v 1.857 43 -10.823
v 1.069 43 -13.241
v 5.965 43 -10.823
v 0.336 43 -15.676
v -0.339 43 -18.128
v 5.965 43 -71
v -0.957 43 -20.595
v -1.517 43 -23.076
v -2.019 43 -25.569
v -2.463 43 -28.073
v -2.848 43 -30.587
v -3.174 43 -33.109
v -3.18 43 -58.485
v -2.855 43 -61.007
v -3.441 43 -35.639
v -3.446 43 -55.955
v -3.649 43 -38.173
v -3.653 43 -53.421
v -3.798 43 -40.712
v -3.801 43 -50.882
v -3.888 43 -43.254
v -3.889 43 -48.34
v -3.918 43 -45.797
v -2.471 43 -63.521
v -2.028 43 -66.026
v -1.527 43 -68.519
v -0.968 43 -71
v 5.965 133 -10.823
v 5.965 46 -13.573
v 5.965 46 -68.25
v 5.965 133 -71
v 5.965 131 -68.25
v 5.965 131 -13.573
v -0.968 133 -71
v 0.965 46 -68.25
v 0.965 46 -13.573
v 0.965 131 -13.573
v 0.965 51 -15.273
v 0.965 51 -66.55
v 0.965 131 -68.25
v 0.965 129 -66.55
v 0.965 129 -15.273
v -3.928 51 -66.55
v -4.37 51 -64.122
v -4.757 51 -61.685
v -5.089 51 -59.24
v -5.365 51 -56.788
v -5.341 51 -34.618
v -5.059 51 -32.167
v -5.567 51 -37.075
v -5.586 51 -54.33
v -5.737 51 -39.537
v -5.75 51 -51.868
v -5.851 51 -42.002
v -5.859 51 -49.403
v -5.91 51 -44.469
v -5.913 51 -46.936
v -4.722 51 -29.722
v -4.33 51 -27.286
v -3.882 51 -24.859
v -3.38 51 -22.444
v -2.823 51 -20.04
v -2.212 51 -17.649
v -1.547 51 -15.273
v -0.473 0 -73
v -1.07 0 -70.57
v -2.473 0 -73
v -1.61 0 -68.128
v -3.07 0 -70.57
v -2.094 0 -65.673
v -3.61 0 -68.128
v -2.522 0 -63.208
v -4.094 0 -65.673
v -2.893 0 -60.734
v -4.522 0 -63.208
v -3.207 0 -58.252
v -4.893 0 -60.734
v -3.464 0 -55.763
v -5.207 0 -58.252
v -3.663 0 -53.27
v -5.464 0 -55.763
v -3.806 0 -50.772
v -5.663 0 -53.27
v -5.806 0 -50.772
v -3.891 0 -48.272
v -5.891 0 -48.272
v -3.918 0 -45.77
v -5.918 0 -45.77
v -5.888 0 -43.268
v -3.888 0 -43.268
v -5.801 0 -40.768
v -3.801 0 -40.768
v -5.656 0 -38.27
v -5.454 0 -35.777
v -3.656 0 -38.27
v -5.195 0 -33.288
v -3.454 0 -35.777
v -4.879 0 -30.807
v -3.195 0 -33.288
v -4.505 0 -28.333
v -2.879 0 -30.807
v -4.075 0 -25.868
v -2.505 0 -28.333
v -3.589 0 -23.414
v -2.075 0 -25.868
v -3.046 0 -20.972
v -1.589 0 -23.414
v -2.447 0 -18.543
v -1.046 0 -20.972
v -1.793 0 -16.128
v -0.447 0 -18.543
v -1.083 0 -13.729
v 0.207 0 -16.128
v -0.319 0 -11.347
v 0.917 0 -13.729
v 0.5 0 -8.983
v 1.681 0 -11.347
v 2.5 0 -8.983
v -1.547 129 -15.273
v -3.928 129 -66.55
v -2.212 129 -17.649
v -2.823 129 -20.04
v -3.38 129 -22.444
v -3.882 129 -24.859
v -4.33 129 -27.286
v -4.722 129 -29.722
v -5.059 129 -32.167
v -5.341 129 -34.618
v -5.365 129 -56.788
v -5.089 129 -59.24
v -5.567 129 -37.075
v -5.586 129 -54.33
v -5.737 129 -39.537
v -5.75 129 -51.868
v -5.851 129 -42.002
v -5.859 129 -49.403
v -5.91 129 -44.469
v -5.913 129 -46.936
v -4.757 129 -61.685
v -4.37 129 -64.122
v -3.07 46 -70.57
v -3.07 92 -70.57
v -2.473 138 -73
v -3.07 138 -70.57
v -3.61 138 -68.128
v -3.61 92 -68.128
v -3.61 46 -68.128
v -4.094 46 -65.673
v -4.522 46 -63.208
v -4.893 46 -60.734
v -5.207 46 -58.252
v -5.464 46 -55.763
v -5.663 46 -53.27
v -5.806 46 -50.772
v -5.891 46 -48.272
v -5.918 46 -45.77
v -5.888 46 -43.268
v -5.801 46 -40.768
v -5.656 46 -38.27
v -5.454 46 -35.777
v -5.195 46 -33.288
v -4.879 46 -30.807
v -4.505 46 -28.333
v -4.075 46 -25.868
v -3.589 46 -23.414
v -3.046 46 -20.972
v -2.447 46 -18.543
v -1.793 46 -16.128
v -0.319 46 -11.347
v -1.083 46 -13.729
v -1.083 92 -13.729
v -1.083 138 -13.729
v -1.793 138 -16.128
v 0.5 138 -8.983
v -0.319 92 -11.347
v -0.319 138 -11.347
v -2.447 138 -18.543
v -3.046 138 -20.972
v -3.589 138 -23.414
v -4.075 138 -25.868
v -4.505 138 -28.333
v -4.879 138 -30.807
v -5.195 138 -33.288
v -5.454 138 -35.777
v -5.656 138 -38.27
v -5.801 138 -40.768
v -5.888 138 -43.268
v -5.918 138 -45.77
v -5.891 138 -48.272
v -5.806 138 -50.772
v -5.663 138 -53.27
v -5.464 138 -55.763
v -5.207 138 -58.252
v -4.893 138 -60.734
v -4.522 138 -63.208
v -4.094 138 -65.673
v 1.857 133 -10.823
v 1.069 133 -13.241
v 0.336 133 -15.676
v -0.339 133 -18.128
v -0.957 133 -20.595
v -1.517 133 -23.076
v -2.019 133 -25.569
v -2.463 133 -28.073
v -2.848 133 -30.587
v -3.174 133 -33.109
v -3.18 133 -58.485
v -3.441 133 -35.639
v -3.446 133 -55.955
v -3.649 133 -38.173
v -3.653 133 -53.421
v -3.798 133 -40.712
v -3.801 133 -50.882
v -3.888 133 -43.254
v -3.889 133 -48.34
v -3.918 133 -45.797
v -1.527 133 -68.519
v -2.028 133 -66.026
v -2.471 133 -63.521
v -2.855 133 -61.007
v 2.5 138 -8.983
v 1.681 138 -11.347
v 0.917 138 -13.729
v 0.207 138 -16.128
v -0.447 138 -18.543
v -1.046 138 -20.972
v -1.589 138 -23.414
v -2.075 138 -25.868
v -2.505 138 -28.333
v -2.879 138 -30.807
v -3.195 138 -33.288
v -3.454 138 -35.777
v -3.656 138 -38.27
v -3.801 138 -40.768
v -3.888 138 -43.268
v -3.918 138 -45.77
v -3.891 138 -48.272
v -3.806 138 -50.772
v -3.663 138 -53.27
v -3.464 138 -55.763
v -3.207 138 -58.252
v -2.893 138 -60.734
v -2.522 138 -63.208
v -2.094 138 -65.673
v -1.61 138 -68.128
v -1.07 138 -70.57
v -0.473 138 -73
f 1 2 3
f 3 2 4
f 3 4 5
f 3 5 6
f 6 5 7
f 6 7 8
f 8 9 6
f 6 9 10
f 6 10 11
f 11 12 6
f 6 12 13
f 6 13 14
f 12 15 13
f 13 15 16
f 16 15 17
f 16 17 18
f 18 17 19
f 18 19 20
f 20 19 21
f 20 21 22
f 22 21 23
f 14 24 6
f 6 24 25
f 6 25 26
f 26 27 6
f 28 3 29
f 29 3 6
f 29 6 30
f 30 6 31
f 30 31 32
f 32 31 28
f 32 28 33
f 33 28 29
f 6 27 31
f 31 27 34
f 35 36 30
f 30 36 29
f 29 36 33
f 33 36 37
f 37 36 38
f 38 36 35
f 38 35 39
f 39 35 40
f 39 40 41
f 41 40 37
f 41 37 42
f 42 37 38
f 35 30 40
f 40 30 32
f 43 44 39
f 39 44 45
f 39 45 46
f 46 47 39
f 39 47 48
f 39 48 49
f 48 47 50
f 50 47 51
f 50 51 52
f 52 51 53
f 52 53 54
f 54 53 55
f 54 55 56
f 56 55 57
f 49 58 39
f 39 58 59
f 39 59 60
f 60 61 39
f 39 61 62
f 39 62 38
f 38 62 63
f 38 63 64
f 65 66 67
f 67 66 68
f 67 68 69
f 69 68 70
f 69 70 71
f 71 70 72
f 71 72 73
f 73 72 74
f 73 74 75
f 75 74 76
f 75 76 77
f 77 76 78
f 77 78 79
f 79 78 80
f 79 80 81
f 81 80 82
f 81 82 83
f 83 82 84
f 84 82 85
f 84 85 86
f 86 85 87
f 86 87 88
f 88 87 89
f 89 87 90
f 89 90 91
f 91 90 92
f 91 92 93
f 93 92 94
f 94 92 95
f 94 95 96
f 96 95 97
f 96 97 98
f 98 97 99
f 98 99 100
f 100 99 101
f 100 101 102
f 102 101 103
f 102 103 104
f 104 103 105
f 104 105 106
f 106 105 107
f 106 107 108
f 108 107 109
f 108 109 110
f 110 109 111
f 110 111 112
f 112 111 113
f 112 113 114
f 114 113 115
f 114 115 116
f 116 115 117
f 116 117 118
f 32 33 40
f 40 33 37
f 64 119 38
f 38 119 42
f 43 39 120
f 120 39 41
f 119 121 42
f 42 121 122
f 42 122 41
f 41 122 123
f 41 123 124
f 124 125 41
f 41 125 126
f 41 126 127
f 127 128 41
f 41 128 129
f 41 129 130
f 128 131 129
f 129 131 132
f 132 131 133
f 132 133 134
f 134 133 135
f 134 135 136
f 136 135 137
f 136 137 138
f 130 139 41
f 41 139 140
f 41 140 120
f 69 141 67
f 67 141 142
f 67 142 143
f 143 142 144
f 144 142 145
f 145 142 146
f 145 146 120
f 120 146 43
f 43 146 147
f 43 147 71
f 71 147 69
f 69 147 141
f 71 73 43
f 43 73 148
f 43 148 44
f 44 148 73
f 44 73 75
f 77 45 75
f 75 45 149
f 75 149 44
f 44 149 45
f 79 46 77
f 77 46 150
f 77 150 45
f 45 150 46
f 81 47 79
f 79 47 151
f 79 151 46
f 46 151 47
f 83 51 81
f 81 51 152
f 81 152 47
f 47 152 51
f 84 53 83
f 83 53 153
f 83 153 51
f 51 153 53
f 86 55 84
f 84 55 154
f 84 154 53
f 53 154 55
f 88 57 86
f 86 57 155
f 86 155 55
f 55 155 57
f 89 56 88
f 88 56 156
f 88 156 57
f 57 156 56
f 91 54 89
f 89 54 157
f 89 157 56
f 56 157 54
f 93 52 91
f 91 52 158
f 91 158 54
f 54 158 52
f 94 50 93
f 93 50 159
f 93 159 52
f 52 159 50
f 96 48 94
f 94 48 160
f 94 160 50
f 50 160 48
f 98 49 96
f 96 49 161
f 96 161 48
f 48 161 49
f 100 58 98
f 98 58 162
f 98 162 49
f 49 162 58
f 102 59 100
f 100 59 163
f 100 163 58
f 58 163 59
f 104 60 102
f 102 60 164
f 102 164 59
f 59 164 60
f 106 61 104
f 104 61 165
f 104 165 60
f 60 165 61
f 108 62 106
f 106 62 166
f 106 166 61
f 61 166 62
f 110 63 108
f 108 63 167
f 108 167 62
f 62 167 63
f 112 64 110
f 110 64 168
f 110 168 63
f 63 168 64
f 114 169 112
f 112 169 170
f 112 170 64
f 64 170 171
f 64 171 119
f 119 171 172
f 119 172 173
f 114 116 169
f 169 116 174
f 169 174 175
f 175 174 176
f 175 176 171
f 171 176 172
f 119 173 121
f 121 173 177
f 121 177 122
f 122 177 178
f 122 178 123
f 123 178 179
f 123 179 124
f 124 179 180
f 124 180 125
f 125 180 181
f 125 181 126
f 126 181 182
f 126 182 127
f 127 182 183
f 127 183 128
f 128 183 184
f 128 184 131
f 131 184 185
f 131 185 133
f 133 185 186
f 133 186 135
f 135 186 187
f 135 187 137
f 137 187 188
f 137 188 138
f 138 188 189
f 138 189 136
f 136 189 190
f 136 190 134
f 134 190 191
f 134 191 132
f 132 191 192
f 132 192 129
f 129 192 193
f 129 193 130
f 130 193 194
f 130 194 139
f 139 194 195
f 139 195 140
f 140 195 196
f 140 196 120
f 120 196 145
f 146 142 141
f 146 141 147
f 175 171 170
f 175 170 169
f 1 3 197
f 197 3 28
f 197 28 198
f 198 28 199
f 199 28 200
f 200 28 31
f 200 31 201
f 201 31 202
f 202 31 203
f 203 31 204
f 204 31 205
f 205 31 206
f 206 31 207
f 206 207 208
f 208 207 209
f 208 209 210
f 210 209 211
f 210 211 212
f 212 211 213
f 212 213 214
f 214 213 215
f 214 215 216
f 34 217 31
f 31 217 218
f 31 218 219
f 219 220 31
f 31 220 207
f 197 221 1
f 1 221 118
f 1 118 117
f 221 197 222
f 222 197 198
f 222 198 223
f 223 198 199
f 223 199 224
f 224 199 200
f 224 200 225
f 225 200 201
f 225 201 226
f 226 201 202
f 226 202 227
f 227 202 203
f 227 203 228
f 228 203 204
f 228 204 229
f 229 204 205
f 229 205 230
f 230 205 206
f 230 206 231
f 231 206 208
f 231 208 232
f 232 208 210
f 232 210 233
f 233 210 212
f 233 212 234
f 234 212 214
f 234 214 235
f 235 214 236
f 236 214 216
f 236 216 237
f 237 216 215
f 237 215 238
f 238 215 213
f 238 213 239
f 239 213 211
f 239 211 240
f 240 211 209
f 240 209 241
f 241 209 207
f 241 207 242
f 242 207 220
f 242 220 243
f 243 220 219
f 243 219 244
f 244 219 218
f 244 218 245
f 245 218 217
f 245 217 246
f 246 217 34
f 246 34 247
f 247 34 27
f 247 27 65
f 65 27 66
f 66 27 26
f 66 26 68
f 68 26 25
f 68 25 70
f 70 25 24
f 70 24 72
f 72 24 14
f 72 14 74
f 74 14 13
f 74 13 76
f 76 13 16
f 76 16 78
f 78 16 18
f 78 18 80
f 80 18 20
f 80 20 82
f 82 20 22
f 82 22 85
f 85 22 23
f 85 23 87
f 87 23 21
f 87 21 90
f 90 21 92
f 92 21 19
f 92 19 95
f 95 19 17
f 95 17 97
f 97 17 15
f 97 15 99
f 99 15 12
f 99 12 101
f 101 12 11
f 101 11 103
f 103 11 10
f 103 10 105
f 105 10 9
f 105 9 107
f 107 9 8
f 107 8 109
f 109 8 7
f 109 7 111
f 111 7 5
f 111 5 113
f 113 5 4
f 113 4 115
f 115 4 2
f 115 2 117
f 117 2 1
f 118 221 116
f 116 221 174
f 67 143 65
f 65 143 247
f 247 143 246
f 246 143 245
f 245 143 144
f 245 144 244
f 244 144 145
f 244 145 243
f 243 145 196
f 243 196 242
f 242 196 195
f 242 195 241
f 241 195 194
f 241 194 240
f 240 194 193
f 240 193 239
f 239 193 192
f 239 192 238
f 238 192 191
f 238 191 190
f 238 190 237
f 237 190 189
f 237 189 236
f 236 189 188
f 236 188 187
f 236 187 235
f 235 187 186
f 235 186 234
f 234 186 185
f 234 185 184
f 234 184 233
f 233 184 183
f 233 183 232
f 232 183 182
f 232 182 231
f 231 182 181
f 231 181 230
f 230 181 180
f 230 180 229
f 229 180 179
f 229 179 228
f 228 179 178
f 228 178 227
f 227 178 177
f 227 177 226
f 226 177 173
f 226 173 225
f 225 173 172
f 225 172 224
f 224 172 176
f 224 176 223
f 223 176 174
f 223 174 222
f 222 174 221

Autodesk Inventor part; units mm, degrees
ref_plane "YZ Plane" through (0, 0, 0) normal (1, 0, 0) x (0, 1, 0)
ref_plane "XZ Plane" through (0, 0, 0) normal (0, 1, 0) x (-1, 0, 0)
ref_plane "XY Plane" through (0, 0, 0) normal (0, 0, 1) x (1, 0, 0)
sketch "Sketch1" plane through (0, 0, 0) normal (0, 1, 0) x (-1, 0, 0)
  line L0 (0, 0) -> (2, 0) construction
  line L1 (0, -75) -> (2, -75) construction
  line L2 (0, -73) -> (2.4733, -73)
  line L3 (1.3383, -13) -> (1.3383, -5.3327) construction
  line L4 (6.5938, -37.5) -> (0, -37.5) construction
  line L5 (2.0086, -8.9832) -> (-0.0001, -8.9832) construction
  arc A0 (0.4733, -73) -> (-2.5001, -8.9832) centre (-105.0089, -45.8218) ccw
  arc A1 (2.4733, -73) -> (-0.5001, -8.9832) centre (-103.0089, -45.8218) ccw
  line L6 (-0.5001, -8.9832) -> (-2.5001, -8.9832)
  line L7 (-0.9649, -13.5728) -> (-5.9649, -13.5728)
  line L8 (-5.9649, -13.5728) -> (-5.9649, -10.8228)
  line L9 (-5.9649, -10.8228) -> (-1.8575, -10.8228)
  line L10 (-3.6617, -68.25) -> (-8.7098, -68.25) construction
  line L11 (1.5844, -68.25) -> (-5.9649, -68.25)
  line L12 (-5.9649, -68.25) -> (-5.9649, -71)
  line L13 (-5.9649, -71) -> (0.9685, -71)
  line L14 (-5.9649, -13.5728) -> (-5.9649, -68.25)
  line L15 (-0.9649, -13.5728) -> (-0.9649, -15.2728)
  line L16 (-0.9649, -66.55) -> (1.9279, -66.55)
  line L17 (3.9279, -66.55) -> (1.9279, -66.55)
  line L18 (-0.9649, -15.2728) -> (-0.4532, -15.2728)
  line L19 (1.5468, -15.2728) -> (-0.4532, -15.2728)
  line L20 (-0.9649, -15.2728) -> (-0.9649, -66.55)
  line L21 (-0.9649, -66.55) -> (-0.9649, -68.25)
  point P0 (0.0167, -6.9833)
  point P1 (2, 0)
  point P2 (4.5938, -37.5)
  point P3 (0, -41)
  point P4 (0, -15)
  point P5 (0, -67.5)
  point P6 (0, -69)
  point P7 (0, -13)
  point P8 (3.8363, -67.0175)
  point P9 (-3.6617, -13.5728)
  point P10 (0.9193, -71)
  point P11 (1.5637, -68.25)
  point P12 (2.3337, -10.8228)
  point P13 (-3.6617, -10.8228)
  point P14 (1.3383, -13.5728)
  point P15 (3.6, -37.5)
  point P16 (5.6, -37.5)
  point P17 (-0.5333, -15)
  point P18 (1.4667, -15)
  dimension "d1" = 2
  dimension "d3" = 2
  dimension "d4" = 2
  dimension "d5" = 2
  dimension "d6" = 32
  dimension "d8" = 3.6
  dimension "d9" = 2
  dimension "d10" = 2.5
  dimension "d11" = 2
  dimension "d12" = 5
  dimension "d29" = 1.7
extrude "Extrusion12" add sketch "Sketch1" along normal blind 138 contours A0 L17 A1 L2 | L17 A0 L19 A1 | L19 A0 L6 A1
extrude "Extrusion13" add sketch "Sketch1" along normal blind 133 contours L13 L12 L11 A0 | L11 L21 L16 A0 | L16 L20 L18 A0 | L11 L14 L7 L15 L20 L21 | L18 L15 A0 | L8 L9 A0 L7
extrude "Extrusion14" cut sketch "Sketch1" along normal blind 129 contours L17 A0 L19 A1
extrude "Extrusion15" cut sketch "Sketch1" along normal blind 131 contours L11 L14 L7 L15 L20 L21
extrude "Extrusion16" cut sketch "Sketch1" along normal blind 129 contours L16 L20 L18 A0
extrude "Extrusion17" add sketch "Sketch1" along normal blind 51 contours L17 A0 L19 A1 | L16 L20 L18 A0
extrude "Extrusion18" add sketch "Sketch1" along normal blind 46 contours L11 L14 L7 L15 L20 L21
extrude "Extrusion20" cut sketch "Sketch1" along normal blind 43 contours L13 L12 L11 A0 | L11 L21 L16 A0 | L16 L20 L18 A0 | L11 L14 L7 L15 L20 L21 | L18 L15 A0 | L8 L9 A0 L7
properties part number "face_v3"
